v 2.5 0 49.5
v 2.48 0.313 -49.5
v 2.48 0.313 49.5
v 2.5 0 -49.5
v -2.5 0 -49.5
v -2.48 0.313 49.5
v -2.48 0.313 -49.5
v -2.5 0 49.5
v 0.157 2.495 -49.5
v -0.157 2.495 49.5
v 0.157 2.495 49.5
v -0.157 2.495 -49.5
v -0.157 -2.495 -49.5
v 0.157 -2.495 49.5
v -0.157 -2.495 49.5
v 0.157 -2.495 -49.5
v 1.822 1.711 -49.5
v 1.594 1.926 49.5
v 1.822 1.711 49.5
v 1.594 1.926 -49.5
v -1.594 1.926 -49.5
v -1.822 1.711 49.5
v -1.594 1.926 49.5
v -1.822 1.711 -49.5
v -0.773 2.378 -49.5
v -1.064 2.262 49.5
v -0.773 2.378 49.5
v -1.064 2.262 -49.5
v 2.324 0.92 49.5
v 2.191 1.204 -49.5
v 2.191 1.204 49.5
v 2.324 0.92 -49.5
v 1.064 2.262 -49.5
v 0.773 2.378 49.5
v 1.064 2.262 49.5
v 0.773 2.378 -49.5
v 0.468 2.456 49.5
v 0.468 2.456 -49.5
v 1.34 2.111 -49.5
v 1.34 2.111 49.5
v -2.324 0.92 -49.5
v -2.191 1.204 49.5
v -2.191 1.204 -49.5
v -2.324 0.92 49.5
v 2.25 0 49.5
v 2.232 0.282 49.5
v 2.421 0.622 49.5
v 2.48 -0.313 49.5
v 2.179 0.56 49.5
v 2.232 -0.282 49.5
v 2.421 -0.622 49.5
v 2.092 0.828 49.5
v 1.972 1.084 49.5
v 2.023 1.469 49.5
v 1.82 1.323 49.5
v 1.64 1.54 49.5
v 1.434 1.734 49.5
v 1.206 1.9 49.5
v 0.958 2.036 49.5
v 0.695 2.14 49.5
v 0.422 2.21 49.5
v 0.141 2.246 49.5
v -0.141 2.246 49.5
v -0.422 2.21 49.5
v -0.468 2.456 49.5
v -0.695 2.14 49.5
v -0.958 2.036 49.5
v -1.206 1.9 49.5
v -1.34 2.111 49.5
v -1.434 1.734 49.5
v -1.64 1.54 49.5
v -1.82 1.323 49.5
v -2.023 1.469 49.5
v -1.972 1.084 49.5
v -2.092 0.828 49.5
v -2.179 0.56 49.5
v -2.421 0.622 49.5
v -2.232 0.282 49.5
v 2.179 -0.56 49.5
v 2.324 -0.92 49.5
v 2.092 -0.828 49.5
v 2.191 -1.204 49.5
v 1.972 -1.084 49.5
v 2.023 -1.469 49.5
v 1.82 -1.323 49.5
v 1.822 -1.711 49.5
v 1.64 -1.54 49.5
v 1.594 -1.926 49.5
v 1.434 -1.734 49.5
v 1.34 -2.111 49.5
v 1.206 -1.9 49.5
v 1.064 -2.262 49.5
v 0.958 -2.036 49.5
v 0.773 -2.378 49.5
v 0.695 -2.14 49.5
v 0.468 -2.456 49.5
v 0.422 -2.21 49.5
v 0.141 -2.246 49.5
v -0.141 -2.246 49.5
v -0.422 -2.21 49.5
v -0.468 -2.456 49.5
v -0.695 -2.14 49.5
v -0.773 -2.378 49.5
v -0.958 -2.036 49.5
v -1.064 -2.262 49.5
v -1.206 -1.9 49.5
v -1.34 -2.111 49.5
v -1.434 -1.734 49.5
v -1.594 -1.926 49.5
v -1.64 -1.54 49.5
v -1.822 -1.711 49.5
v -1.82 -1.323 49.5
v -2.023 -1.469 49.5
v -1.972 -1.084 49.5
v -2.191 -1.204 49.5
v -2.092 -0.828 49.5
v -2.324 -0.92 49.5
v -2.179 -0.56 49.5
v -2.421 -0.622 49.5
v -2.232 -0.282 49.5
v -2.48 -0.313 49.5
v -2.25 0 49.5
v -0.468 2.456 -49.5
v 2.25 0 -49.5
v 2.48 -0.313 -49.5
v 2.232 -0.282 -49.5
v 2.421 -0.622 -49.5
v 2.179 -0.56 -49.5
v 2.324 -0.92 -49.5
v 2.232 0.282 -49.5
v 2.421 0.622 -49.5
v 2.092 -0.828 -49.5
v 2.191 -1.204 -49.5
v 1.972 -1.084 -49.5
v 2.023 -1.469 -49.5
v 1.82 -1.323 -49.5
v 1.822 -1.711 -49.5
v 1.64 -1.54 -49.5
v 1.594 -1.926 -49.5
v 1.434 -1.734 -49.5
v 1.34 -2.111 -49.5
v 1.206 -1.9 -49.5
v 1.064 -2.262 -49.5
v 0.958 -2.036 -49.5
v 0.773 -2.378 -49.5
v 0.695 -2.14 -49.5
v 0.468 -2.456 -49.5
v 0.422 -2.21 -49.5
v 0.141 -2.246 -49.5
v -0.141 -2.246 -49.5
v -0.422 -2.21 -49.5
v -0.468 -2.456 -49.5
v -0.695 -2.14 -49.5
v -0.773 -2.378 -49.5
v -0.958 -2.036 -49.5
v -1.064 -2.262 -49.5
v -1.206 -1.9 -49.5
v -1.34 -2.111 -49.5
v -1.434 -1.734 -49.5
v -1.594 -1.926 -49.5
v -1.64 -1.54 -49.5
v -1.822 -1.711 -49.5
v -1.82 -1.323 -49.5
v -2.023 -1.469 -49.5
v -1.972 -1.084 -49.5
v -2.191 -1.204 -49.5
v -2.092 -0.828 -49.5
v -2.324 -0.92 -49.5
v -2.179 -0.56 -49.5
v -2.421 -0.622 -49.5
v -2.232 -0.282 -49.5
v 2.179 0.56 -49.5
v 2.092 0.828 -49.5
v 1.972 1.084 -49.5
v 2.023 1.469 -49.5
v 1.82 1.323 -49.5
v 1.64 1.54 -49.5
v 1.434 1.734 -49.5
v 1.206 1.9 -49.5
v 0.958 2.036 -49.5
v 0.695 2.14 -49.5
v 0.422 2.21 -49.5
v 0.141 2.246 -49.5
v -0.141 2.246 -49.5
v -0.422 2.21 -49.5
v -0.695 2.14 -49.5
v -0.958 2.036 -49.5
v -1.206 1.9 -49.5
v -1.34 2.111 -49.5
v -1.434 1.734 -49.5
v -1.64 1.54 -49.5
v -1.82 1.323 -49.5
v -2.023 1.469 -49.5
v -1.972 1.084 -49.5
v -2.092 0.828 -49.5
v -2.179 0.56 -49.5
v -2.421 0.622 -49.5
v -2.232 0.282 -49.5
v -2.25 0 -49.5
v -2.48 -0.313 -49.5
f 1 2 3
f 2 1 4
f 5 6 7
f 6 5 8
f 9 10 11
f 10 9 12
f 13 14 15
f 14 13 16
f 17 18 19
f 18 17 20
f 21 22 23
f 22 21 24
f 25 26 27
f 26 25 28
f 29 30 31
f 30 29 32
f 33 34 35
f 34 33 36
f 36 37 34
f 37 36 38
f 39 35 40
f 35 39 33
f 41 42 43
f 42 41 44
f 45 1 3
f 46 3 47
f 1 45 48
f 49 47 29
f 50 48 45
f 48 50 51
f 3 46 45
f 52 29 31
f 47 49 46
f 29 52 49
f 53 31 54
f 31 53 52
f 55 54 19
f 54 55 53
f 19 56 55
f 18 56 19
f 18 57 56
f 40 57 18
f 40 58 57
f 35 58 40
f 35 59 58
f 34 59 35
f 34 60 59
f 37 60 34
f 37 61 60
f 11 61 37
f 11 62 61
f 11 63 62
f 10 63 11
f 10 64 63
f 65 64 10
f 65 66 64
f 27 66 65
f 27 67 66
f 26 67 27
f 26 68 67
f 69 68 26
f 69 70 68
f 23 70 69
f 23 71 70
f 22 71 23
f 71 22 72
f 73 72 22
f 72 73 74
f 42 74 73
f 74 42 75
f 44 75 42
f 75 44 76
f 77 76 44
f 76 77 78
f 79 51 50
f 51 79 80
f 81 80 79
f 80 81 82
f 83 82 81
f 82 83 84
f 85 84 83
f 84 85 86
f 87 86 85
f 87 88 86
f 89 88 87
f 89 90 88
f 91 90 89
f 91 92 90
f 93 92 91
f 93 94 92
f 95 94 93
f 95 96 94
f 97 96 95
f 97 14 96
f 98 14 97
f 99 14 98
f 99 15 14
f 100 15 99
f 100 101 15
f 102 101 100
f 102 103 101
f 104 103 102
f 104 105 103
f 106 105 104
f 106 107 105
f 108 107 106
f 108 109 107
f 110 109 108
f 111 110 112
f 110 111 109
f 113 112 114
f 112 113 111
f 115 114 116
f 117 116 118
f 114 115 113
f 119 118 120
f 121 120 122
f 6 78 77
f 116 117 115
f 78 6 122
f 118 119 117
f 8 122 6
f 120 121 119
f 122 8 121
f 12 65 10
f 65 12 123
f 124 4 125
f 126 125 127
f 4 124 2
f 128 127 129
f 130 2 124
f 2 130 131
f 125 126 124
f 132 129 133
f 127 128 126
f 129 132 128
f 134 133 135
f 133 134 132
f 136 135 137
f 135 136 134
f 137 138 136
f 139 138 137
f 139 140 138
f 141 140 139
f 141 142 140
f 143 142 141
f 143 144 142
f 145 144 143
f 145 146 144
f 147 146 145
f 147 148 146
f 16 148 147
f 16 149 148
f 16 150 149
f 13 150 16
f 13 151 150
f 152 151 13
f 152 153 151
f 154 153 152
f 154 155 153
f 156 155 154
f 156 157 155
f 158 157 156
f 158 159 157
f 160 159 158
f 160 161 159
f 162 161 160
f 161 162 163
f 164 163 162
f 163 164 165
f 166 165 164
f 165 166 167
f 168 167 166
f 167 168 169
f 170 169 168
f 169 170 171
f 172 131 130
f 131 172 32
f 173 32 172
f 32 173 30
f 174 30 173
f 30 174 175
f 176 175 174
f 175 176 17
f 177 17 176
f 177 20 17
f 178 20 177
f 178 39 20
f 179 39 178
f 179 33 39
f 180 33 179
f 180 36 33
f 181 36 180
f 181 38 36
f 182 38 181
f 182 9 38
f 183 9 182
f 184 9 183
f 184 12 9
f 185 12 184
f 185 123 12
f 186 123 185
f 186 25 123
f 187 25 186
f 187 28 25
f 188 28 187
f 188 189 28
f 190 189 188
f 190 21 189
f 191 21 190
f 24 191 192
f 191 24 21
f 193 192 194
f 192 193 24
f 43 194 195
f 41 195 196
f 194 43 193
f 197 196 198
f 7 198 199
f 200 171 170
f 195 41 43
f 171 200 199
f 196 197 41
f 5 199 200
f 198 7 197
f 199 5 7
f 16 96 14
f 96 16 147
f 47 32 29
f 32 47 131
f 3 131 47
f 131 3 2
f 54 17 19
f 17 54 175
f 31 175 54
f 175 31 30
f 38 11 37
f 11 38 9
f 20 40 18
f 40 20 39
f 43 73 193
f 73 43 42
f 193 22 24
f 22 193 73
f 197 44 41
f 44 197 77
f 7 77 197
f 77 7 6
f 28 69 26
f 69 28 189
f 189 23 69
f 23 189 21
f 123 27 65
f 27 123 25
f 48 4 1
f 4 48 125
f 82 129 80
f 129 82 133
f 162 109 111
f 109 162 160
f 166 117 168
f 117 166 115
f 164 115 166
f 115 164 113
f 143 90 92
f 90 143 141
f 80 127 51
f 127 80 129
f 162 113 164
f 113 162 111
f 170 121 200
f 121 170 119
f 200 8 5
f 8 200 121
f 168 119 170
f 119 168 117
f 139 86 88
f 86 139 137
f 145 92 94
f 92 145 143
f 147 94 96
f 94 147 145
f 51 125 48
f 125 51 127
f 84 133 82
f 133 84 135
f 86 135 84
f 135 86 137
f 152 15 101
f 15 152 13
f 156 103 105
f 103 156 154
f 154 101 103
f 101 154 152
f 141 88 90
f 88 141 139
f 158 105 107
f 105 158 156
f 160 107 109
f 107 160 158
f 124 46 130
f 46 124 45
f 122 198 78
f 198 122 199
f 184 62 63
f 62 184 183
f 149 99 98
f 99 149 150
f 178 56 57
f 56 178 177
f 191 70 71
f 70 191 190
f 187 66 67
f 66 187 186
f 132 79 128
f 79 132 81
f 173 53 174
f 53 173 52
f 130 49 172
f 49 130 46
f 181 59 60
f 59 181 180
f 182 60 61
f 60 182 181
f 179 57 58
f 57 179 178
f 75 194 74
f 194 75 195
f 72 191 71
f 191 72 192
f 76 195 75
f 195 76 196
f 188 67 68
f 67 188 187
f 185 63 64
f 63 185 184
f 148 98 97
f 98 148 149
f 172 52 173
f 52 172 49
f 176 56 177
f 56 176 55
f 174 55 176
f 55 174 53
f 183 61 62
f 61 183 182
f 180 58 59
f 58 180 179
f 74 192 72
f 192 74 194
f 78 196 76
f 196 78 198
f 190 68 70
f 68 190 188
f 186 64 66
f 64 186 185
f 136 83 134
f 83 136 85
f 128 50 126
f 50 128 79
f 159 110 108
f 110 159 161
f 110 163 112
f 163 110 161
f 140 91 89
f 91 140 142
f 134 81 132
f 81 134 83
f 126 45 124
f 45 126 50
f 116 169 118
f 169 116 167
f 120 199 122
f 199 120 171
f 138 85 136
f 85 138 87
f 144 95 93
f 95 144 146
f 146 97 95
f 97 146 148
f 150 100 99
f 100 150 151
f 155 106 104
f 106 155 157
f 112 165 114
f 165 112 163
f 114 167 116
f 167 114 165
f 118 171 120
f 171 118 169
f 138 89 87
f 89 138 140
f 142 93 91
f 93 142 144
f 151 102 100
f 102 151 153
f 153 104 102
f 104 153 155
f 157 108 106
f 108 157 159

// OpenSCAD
$fn = 50;


difference() {
	union() {
		translate(v = [0, 0, -49.5000000000]) {
			cylinder(h = 99, r = 2.5000000000);
		}
	}
	union() {
		translate(v = [0, 0, -100.0000000000]) {
			cylinder(h = 200, r = 2.2500000000);
		}
	}
}
